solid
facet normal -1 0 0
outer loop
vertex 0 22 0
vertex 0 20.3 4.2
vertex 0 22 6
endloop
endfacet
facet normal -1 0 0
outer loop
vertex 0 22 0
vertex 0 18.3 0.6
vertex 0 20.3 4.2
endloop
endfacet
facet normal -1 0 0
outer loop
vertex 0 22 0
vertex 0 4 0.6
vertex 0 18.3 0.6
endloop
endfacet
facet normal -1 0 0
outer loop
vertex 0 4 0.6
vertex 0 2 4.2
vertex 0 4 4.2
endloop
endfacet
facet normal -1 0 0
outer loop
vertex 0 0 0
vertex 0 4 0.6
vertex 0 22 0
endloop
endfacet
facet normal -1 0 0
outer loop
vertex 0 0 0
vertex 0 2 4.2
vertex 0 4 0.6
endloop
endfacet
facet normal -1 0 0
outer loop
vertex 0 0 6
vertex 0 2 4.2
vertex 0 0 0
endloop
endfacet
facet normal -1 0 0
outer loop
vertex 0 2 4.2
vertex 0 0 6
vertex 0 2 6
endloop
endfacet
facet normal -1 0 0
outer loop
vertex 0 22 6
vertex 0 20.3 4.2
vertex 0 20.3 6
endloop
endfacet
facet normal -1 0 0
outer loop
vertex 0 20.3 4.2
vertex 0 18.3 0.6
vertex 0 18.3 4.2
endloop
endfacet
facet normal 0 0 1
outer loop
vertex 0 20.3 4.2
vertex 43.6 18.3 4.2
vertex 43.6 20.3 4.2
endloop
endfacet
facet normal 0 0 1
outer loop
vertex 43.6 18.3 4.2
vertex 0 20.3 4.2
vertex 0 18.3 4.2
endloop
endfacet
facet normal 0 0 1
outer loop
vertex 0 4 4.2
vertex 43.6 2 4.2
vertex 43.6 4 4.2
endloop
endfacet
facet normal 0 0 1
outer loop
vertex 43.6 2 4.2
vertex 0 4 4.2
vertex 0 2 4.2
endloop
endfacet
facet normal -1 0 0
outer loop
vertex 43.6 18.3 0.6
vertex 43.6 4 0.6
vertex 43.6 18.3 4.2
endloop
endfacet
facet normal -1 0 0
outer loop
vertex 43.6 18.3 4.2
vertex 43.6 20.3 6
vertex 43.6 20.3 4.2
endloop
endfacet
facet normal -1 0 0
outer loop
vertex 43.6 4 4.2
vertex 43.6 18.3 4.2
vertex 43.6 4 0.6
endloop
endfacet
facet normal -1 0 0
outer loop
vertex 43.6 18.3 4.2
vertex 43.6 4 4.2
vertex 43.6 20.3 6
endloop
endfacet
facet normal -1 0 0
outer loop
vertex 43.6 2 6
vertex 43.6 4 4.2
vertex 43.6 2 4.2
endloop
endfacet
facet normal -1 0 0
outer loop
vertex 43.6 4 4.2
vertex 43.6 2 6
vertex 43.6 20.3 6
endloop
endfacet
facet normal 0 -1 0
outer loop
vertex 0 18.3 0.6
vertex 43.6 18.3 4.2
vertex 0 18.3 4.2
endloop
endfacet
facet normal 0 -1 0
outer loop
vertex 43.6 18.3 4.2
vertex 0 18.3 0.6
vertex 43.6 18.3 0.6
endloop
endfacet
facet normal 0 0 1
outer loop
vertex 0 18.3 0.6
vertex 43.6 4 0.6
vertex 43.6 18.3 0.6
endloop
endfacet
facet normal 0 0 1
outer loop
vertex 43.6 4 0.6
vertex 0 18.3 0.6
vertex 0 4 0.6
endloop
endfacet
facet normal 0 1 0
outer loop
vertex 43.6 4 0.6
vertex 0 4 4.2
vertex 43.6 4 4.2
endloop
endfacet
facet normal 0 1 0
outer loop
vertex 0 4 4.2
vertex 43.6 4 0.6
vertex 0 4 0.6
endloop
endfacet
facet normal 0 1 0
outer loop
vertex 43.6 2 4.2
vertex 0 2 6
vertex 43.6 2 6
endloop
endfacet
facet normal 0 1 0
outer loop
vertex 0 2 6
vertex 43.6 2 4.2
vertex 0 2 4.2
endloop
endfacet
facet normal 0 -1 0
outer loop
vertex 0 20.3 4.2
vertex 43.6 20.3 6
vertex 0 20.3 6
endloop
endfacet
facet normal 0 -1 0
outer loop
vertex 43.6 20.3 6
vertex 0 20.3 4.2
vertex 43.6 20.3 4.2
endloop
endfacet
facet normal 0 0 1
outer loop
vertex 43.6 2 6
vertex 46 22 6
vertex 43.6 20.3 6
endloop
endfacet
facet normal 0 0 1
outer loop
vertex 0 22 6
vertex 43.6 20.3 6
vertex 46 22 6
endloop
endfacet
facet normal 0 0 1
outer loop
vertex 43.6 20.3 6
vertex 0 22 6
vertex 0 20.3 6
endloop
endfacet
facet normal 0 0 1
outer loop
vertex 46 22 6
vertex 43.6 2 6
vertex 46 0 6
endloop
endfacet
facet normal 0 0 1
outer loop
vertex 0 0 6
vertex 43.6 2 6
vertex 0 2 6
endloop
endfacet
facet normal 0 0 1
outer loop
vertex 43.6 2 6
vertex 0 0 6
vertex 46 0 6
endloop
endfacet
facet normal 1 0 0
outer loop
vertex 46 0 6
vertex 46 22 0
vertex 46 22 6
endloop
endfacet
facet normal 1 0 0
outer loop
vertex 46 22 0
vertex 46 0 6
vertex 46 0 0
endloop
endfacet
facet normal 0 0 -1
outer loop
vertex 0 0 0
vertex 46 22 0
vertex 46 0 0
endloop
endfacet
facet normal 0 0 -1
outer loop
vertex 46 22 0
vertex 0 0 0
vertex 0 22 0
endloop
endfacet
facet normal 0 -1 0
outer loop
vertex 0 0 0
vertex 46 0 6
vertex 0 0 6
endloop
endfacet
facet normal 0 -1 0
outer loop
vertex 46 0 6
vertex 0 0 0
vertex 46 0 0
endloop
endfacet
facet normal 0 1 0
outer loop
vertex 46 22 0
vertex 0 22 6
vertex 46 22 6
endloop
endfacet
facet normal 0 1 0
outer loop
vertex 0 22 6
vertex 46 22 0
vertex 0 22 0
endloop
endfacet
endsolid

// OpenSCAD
module corner(size) {
    hole_h = 1;
    hole_w = 4;
    hole_distance = 16;
    
    half_size = size/2;
    quat_size = size/4;
    
    module block(holes) {
        difference() {
            cube([half_size, half_size, 2], center=true);
            if (holes) {
                union() {
                    translate([-hole_distance/2, 0, 0])
                        cube([hole_h, hole_w, 2], center=true);
                    translate([hole_distance/2, 0, 0])
                        cube([hole_h, hole_w, 2], center=true);
                }
            }
        }
    }
    
    translate([-half_size, -half_size, 0])
    union() {
        translate([quat_size + half_size, quat_size + half_size, 0])
            rotate([0, 0, 90])
                block(true);
        translate([quat_size, quat_size, 0])
            block(true);
        translate([quat_size + half_size, quat_size, 0])
            block(false);
    }
}

$fn=16;


size=150;
height=5;
hole_size =5;
vesa_type=20;

module make_vesa_holes(size, hole_size) {
    union() {
        translate([-size/2, -size/2, 0])
            cylinder(height, r1=hole_size/2, r2=hole_size/2);
        translate([-size/2, size/2, 0])
            cylinder(height, r1=hole_size/2, r2=hole_size/2);
        translate([size/2, -size/2, 0])
            cylinder(height, r1=hole_size/2, r2=hole_size/2);
        translate([size/2, size/2, 0])
            cylinder(height, r1=hole_size/2, r2=hole_size/2);
    }
}


bluetooth_w = 38;
bluetooth_h = 16.5;

module vesa_base() {
    difference(){
        translate([-bluetooth_w/2, -bluetooth_h/2, 1])
            cube([bluetooth_w, bluetooth_h, height]);
        for (distance = [50, 75, 100])
            make_vesa_holes(distance, hole_size);
    }
}


module avr_nano_pcb_adapter() {
    translate([0.00, 2.00, 0.00])
        cube([43.60, 14.30, 3.60]);
    translate([0, 0, 3.60])
        cube([43.60, 18.30, 6.50]);
}

difference() {
    cube([46, 22, 6]);
        translate([0,2.00,0.6])
            avr_nano_pcb_adapter();
}


/*
corner(40);
translate([50, -50, 0])
rotate([0, 0, -45])
    cube([100, 20, 2], center=true);

translate([50, -50, 0])
corner(40);

*/
